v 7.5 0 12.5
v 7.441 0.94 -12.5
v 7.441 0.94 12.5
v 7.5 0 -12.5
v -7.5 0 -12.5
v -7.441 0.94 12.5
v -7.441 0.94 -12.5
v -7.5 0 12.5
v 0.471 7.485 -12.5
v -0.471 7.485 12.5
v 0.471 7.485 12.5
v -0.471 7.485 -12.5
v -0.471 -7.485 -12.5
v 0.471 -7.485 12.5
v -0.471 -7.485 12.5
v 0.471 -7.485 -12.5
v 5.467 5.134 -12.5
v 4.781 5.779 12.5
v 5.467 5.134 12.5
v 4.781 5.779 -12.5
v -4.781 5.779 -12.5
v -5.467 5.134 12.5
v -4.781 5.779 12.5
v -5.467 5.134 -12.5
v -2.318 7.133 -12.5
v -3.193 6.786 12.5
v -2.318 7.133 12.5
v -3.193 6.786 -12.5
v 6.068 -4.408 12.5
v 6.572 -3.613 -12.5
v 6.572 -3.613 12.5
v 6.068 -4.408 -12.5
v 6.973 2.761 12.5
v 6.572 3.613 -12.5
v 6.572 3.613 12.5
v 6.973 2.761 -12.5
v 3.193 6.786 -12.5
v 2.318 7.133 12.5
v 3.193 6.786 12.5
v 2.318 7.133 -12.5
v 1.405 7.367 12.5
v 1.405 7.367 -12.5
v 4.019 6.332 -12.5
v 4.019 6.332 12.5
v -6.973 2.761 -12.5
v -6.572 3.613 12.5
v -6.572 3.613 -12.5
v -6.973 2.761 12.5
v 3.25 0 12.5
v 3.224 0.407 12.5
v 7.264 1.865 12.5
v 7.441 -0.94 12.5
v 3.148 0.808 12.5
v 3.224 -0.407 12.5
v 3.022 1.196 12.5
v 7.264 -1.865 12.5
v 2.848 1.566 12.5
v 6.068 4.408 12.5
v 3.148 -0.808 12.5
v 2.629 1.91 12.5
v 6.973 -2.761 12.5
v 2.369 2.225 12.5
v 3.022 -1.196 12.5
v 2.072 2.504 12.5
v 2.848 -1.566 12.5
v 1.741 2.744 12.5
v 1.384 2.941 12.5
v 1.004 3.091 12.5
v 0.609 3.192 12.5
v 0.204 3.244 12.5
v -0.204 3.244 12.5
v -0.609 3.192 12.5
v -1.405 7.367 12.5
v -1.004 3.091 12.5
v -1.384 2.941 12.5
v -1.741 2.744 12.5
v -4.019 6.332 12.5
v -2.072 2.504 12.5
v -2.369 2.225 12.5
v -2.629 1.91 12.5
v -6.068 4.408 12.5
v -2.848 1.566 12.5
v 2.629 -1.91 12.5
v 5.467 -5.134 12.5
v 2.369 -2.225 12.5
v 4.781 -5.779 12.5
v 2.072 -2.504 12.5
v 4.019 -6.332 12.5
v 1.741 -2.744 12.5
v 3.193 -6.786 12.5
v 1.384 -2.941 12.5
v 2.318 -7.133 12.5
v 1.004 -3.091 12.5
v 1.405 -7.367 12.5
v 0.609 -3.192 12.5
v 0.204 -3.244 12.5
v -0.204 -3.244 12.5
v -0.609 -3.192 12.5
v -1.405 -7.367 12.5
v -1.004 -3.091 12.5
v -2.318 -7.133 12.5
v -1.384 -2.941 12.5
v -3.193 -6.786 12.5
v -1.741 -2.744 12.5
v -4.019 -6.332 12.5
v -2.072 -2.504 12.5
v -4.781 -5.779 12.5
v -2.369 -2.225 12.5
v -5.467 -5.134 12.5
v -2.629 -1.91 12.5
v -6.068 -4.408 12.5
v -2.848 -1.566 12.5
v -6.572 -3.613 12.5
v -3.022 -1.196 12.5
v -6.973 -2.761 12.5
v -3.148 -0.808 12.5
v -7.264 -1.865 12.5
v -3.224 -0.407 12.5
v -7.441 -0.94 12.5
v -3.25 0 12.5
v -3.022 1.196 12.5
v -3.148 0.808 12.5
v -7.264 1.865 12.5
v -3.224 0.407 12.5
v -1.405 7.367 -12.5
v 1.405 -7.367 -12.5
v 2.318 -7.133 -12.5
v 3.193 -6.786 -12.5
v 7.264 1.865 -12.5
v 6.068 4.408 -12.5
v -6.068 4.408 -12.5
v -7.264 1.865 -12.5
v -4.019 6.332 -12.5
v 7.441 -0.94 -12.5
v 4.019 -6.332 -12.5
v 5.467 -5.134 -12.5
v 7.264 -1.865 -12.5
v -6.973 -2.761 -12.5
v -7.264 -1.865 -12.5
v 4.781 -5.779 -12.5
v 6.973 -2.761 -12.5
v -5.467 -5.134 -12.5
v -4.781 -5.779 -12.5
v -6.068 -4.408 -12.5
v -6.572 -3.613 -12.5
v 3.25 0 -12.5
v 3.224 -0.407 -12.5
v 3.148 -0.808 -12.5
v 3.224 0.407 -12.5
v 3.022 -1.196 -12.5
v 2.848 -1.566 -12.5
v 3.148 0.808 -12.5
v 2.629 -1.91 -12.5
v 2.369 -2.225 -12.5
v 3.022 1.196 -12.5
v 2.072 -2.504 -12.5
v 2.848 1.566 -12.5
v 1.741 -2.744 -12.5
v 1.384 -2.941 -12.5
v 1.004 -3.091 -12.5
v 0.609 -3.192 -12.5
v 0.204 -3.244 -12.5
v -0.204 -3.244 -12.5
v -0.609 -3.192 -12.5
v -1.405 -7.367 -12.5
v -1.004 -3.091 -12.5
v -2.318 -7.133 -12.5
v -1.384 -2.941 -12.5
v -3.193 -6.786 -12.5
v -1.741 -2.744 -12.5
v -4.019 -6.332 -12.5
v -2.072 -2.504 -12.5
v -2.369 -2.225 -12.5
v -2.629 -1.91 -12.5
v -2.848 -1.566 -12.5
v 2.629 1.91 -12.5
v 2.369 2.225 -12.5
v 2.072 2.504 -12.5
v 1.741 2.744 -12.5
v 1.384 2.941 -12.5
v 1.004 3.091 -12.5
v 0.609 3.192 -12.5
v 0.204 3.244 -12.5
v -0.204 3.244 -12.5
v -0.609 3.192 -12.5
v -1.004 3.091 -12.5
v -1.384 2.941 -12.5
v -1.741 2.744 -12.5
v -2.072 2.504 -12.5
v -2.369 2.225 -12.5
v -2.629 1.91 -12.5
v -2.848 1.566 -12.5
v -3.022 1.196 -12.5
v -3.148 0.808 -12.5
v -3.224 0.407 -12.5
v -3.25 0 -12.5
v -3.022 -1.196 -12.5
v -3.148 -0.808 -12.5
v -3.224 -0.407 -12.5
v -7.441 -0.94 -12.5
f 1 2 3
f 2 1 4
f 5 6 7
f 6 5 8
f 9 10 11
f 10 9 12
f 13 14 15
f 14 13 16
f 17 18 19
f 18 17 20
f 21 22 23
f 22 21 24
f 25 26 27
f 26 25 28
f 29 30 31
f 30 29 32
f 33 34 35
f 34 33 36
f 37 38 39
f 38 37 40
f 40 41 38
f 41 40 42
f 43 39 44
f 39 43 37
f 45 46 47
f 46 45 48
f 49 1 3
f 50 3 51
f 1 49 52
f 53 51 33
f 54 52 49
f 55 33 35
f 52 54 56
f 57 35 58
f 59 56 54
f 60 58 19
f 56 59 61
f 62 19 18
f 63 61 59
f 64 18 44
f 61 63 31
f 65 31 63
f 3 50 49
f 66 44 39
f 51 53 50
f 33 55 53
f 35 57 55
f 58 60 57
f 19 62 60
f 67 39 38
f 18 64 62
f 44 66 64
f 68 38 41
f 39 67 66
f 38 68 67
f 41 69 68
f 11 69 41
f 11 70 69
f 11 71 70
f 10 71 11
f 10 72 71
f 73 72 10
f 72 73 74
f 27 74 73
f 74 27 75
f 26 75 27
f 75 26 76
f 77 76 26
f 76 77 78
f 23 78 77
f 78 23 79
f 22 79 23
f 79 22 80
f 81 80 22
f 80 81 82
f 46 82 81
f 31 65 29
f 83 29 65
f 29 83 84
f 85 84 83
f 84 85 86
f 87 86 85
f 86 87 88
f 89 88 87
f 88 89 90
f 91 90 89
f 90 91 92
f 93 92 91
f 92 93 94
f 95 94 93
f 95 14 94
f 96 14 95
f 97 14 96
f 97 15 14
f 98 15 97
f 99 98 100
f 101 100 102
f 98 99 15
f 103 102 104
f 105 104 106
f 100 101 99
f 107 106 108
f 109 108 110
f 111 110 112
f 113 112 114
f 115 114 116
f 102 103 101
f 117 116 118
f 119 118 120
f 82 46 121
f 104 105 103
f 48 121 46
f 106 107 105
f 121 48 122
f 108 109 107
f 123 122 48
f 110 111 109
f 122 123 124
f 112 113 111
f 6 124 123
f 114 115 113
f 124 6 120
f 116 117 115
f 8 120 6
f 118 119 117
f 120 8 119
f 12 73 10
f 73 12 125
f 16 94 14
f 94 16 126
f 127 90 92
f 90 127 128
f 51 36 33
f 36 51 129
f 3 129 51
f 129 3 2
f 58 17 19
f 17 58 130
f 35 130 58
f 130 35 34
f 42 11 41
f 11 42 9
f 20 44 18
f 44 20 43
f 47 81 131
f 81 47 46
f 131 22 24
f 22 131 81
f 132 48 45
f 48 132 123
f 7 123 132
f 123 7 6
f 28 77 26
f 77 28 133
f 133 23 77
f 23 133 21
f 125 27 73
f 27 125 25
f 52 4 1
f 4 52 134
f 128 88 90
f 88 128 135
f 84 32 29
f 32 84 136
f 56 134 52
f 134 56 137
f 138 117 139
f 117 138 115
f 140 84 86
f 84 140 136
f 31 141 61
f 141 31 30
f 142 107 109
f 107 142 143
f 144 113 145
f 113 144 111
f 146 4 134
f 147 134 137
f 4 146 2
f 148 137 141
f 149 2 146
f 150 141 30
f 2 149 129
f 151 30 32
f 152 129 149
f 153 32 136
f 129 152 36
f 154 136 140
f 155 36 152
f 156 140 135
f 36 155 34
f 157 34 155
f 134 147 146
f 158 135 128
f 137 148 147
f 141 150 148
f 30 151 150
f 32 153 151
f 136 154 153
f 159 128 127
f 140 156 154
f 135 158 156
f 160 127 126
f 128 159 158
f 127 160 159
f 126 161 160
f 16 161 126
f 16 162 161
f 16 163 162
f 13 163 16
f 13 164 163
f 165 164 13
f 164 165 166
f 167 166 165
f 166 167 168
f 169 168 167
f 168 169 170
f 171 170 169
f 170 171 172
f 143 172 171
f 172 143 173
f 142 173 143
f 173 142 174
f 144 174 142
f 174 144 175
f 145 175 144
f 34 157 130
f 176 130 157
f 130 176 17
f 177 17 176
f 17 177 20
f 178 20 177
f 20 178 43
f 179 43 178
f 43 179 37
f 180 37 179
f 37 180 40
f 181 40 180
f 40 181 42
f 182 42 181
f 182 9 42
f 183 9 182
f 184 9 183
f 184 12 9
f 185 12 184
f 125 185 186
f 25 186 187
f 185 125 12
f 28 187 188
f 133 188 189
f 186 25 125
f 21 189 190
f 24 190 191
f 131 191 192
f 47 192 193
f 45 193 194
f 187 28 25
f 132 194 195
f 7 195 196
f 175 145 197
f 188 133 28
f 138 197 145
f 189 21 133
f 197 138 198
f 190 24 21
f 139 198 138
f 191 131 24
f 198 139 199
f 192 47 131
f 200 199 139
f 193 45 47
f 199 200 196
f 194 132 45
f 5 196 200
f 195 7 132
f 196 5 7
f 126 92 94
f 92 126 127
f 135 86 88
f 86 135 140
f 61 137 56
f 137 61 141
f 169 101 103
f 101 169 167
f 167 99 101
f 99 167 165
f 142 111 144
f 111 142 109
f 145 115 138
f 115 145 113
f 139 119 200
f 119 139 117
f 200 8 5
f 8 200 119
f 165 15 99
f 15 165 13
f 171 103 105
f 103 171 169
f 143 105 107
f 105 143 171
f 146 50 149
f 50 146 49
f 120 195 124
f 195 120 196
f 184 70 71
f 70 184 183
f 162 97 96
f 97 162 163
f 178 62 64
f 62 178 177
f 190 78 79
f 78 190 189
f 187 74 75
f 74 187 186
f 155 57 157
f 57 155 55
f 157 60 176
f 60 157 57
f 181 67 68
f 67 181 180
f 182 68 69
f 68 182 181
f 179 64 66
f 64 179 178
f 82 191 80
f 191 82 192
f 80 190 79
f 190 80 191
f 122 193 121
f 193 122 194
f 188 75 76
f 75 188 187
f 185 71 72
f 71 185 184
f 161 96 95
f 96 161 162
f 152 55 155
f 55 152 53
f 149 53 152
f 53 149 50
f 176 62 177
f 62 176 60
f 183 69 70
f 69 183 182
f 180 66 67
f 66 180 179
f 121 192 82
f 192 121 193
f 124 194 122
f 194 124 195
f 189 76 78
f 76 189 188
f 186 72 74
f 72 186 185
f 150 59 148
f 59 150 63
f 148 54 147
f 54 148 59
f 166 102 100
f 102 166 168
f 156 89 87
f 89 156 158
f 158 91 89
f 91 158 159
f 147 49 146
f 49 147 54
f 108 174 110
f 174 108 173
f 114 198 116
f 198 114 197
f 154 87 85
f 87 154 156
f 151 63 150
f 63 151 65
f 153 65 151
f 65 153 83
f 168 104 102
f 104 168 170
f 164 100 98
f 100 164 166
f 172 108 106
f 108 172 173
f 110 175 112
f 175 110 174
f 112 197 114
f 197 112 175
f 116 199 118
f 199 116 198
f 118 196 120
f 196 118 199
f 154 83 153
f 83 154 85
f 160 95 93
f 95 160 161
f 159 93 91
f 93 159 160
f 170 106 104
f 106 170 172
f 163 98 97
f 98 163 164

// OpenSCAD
$fn = 50;


difference() {
	union() {
		translate(v = [0, 0, -12.5000000000]) {
			cylinder(h = 25, r = 7.5000000000);
		}
	}
	union() {
		translate(v = [0, 0, -100.0000000000]) {
			cylinder(h = 200, r = 3.2500000000);
		}
	}
}
